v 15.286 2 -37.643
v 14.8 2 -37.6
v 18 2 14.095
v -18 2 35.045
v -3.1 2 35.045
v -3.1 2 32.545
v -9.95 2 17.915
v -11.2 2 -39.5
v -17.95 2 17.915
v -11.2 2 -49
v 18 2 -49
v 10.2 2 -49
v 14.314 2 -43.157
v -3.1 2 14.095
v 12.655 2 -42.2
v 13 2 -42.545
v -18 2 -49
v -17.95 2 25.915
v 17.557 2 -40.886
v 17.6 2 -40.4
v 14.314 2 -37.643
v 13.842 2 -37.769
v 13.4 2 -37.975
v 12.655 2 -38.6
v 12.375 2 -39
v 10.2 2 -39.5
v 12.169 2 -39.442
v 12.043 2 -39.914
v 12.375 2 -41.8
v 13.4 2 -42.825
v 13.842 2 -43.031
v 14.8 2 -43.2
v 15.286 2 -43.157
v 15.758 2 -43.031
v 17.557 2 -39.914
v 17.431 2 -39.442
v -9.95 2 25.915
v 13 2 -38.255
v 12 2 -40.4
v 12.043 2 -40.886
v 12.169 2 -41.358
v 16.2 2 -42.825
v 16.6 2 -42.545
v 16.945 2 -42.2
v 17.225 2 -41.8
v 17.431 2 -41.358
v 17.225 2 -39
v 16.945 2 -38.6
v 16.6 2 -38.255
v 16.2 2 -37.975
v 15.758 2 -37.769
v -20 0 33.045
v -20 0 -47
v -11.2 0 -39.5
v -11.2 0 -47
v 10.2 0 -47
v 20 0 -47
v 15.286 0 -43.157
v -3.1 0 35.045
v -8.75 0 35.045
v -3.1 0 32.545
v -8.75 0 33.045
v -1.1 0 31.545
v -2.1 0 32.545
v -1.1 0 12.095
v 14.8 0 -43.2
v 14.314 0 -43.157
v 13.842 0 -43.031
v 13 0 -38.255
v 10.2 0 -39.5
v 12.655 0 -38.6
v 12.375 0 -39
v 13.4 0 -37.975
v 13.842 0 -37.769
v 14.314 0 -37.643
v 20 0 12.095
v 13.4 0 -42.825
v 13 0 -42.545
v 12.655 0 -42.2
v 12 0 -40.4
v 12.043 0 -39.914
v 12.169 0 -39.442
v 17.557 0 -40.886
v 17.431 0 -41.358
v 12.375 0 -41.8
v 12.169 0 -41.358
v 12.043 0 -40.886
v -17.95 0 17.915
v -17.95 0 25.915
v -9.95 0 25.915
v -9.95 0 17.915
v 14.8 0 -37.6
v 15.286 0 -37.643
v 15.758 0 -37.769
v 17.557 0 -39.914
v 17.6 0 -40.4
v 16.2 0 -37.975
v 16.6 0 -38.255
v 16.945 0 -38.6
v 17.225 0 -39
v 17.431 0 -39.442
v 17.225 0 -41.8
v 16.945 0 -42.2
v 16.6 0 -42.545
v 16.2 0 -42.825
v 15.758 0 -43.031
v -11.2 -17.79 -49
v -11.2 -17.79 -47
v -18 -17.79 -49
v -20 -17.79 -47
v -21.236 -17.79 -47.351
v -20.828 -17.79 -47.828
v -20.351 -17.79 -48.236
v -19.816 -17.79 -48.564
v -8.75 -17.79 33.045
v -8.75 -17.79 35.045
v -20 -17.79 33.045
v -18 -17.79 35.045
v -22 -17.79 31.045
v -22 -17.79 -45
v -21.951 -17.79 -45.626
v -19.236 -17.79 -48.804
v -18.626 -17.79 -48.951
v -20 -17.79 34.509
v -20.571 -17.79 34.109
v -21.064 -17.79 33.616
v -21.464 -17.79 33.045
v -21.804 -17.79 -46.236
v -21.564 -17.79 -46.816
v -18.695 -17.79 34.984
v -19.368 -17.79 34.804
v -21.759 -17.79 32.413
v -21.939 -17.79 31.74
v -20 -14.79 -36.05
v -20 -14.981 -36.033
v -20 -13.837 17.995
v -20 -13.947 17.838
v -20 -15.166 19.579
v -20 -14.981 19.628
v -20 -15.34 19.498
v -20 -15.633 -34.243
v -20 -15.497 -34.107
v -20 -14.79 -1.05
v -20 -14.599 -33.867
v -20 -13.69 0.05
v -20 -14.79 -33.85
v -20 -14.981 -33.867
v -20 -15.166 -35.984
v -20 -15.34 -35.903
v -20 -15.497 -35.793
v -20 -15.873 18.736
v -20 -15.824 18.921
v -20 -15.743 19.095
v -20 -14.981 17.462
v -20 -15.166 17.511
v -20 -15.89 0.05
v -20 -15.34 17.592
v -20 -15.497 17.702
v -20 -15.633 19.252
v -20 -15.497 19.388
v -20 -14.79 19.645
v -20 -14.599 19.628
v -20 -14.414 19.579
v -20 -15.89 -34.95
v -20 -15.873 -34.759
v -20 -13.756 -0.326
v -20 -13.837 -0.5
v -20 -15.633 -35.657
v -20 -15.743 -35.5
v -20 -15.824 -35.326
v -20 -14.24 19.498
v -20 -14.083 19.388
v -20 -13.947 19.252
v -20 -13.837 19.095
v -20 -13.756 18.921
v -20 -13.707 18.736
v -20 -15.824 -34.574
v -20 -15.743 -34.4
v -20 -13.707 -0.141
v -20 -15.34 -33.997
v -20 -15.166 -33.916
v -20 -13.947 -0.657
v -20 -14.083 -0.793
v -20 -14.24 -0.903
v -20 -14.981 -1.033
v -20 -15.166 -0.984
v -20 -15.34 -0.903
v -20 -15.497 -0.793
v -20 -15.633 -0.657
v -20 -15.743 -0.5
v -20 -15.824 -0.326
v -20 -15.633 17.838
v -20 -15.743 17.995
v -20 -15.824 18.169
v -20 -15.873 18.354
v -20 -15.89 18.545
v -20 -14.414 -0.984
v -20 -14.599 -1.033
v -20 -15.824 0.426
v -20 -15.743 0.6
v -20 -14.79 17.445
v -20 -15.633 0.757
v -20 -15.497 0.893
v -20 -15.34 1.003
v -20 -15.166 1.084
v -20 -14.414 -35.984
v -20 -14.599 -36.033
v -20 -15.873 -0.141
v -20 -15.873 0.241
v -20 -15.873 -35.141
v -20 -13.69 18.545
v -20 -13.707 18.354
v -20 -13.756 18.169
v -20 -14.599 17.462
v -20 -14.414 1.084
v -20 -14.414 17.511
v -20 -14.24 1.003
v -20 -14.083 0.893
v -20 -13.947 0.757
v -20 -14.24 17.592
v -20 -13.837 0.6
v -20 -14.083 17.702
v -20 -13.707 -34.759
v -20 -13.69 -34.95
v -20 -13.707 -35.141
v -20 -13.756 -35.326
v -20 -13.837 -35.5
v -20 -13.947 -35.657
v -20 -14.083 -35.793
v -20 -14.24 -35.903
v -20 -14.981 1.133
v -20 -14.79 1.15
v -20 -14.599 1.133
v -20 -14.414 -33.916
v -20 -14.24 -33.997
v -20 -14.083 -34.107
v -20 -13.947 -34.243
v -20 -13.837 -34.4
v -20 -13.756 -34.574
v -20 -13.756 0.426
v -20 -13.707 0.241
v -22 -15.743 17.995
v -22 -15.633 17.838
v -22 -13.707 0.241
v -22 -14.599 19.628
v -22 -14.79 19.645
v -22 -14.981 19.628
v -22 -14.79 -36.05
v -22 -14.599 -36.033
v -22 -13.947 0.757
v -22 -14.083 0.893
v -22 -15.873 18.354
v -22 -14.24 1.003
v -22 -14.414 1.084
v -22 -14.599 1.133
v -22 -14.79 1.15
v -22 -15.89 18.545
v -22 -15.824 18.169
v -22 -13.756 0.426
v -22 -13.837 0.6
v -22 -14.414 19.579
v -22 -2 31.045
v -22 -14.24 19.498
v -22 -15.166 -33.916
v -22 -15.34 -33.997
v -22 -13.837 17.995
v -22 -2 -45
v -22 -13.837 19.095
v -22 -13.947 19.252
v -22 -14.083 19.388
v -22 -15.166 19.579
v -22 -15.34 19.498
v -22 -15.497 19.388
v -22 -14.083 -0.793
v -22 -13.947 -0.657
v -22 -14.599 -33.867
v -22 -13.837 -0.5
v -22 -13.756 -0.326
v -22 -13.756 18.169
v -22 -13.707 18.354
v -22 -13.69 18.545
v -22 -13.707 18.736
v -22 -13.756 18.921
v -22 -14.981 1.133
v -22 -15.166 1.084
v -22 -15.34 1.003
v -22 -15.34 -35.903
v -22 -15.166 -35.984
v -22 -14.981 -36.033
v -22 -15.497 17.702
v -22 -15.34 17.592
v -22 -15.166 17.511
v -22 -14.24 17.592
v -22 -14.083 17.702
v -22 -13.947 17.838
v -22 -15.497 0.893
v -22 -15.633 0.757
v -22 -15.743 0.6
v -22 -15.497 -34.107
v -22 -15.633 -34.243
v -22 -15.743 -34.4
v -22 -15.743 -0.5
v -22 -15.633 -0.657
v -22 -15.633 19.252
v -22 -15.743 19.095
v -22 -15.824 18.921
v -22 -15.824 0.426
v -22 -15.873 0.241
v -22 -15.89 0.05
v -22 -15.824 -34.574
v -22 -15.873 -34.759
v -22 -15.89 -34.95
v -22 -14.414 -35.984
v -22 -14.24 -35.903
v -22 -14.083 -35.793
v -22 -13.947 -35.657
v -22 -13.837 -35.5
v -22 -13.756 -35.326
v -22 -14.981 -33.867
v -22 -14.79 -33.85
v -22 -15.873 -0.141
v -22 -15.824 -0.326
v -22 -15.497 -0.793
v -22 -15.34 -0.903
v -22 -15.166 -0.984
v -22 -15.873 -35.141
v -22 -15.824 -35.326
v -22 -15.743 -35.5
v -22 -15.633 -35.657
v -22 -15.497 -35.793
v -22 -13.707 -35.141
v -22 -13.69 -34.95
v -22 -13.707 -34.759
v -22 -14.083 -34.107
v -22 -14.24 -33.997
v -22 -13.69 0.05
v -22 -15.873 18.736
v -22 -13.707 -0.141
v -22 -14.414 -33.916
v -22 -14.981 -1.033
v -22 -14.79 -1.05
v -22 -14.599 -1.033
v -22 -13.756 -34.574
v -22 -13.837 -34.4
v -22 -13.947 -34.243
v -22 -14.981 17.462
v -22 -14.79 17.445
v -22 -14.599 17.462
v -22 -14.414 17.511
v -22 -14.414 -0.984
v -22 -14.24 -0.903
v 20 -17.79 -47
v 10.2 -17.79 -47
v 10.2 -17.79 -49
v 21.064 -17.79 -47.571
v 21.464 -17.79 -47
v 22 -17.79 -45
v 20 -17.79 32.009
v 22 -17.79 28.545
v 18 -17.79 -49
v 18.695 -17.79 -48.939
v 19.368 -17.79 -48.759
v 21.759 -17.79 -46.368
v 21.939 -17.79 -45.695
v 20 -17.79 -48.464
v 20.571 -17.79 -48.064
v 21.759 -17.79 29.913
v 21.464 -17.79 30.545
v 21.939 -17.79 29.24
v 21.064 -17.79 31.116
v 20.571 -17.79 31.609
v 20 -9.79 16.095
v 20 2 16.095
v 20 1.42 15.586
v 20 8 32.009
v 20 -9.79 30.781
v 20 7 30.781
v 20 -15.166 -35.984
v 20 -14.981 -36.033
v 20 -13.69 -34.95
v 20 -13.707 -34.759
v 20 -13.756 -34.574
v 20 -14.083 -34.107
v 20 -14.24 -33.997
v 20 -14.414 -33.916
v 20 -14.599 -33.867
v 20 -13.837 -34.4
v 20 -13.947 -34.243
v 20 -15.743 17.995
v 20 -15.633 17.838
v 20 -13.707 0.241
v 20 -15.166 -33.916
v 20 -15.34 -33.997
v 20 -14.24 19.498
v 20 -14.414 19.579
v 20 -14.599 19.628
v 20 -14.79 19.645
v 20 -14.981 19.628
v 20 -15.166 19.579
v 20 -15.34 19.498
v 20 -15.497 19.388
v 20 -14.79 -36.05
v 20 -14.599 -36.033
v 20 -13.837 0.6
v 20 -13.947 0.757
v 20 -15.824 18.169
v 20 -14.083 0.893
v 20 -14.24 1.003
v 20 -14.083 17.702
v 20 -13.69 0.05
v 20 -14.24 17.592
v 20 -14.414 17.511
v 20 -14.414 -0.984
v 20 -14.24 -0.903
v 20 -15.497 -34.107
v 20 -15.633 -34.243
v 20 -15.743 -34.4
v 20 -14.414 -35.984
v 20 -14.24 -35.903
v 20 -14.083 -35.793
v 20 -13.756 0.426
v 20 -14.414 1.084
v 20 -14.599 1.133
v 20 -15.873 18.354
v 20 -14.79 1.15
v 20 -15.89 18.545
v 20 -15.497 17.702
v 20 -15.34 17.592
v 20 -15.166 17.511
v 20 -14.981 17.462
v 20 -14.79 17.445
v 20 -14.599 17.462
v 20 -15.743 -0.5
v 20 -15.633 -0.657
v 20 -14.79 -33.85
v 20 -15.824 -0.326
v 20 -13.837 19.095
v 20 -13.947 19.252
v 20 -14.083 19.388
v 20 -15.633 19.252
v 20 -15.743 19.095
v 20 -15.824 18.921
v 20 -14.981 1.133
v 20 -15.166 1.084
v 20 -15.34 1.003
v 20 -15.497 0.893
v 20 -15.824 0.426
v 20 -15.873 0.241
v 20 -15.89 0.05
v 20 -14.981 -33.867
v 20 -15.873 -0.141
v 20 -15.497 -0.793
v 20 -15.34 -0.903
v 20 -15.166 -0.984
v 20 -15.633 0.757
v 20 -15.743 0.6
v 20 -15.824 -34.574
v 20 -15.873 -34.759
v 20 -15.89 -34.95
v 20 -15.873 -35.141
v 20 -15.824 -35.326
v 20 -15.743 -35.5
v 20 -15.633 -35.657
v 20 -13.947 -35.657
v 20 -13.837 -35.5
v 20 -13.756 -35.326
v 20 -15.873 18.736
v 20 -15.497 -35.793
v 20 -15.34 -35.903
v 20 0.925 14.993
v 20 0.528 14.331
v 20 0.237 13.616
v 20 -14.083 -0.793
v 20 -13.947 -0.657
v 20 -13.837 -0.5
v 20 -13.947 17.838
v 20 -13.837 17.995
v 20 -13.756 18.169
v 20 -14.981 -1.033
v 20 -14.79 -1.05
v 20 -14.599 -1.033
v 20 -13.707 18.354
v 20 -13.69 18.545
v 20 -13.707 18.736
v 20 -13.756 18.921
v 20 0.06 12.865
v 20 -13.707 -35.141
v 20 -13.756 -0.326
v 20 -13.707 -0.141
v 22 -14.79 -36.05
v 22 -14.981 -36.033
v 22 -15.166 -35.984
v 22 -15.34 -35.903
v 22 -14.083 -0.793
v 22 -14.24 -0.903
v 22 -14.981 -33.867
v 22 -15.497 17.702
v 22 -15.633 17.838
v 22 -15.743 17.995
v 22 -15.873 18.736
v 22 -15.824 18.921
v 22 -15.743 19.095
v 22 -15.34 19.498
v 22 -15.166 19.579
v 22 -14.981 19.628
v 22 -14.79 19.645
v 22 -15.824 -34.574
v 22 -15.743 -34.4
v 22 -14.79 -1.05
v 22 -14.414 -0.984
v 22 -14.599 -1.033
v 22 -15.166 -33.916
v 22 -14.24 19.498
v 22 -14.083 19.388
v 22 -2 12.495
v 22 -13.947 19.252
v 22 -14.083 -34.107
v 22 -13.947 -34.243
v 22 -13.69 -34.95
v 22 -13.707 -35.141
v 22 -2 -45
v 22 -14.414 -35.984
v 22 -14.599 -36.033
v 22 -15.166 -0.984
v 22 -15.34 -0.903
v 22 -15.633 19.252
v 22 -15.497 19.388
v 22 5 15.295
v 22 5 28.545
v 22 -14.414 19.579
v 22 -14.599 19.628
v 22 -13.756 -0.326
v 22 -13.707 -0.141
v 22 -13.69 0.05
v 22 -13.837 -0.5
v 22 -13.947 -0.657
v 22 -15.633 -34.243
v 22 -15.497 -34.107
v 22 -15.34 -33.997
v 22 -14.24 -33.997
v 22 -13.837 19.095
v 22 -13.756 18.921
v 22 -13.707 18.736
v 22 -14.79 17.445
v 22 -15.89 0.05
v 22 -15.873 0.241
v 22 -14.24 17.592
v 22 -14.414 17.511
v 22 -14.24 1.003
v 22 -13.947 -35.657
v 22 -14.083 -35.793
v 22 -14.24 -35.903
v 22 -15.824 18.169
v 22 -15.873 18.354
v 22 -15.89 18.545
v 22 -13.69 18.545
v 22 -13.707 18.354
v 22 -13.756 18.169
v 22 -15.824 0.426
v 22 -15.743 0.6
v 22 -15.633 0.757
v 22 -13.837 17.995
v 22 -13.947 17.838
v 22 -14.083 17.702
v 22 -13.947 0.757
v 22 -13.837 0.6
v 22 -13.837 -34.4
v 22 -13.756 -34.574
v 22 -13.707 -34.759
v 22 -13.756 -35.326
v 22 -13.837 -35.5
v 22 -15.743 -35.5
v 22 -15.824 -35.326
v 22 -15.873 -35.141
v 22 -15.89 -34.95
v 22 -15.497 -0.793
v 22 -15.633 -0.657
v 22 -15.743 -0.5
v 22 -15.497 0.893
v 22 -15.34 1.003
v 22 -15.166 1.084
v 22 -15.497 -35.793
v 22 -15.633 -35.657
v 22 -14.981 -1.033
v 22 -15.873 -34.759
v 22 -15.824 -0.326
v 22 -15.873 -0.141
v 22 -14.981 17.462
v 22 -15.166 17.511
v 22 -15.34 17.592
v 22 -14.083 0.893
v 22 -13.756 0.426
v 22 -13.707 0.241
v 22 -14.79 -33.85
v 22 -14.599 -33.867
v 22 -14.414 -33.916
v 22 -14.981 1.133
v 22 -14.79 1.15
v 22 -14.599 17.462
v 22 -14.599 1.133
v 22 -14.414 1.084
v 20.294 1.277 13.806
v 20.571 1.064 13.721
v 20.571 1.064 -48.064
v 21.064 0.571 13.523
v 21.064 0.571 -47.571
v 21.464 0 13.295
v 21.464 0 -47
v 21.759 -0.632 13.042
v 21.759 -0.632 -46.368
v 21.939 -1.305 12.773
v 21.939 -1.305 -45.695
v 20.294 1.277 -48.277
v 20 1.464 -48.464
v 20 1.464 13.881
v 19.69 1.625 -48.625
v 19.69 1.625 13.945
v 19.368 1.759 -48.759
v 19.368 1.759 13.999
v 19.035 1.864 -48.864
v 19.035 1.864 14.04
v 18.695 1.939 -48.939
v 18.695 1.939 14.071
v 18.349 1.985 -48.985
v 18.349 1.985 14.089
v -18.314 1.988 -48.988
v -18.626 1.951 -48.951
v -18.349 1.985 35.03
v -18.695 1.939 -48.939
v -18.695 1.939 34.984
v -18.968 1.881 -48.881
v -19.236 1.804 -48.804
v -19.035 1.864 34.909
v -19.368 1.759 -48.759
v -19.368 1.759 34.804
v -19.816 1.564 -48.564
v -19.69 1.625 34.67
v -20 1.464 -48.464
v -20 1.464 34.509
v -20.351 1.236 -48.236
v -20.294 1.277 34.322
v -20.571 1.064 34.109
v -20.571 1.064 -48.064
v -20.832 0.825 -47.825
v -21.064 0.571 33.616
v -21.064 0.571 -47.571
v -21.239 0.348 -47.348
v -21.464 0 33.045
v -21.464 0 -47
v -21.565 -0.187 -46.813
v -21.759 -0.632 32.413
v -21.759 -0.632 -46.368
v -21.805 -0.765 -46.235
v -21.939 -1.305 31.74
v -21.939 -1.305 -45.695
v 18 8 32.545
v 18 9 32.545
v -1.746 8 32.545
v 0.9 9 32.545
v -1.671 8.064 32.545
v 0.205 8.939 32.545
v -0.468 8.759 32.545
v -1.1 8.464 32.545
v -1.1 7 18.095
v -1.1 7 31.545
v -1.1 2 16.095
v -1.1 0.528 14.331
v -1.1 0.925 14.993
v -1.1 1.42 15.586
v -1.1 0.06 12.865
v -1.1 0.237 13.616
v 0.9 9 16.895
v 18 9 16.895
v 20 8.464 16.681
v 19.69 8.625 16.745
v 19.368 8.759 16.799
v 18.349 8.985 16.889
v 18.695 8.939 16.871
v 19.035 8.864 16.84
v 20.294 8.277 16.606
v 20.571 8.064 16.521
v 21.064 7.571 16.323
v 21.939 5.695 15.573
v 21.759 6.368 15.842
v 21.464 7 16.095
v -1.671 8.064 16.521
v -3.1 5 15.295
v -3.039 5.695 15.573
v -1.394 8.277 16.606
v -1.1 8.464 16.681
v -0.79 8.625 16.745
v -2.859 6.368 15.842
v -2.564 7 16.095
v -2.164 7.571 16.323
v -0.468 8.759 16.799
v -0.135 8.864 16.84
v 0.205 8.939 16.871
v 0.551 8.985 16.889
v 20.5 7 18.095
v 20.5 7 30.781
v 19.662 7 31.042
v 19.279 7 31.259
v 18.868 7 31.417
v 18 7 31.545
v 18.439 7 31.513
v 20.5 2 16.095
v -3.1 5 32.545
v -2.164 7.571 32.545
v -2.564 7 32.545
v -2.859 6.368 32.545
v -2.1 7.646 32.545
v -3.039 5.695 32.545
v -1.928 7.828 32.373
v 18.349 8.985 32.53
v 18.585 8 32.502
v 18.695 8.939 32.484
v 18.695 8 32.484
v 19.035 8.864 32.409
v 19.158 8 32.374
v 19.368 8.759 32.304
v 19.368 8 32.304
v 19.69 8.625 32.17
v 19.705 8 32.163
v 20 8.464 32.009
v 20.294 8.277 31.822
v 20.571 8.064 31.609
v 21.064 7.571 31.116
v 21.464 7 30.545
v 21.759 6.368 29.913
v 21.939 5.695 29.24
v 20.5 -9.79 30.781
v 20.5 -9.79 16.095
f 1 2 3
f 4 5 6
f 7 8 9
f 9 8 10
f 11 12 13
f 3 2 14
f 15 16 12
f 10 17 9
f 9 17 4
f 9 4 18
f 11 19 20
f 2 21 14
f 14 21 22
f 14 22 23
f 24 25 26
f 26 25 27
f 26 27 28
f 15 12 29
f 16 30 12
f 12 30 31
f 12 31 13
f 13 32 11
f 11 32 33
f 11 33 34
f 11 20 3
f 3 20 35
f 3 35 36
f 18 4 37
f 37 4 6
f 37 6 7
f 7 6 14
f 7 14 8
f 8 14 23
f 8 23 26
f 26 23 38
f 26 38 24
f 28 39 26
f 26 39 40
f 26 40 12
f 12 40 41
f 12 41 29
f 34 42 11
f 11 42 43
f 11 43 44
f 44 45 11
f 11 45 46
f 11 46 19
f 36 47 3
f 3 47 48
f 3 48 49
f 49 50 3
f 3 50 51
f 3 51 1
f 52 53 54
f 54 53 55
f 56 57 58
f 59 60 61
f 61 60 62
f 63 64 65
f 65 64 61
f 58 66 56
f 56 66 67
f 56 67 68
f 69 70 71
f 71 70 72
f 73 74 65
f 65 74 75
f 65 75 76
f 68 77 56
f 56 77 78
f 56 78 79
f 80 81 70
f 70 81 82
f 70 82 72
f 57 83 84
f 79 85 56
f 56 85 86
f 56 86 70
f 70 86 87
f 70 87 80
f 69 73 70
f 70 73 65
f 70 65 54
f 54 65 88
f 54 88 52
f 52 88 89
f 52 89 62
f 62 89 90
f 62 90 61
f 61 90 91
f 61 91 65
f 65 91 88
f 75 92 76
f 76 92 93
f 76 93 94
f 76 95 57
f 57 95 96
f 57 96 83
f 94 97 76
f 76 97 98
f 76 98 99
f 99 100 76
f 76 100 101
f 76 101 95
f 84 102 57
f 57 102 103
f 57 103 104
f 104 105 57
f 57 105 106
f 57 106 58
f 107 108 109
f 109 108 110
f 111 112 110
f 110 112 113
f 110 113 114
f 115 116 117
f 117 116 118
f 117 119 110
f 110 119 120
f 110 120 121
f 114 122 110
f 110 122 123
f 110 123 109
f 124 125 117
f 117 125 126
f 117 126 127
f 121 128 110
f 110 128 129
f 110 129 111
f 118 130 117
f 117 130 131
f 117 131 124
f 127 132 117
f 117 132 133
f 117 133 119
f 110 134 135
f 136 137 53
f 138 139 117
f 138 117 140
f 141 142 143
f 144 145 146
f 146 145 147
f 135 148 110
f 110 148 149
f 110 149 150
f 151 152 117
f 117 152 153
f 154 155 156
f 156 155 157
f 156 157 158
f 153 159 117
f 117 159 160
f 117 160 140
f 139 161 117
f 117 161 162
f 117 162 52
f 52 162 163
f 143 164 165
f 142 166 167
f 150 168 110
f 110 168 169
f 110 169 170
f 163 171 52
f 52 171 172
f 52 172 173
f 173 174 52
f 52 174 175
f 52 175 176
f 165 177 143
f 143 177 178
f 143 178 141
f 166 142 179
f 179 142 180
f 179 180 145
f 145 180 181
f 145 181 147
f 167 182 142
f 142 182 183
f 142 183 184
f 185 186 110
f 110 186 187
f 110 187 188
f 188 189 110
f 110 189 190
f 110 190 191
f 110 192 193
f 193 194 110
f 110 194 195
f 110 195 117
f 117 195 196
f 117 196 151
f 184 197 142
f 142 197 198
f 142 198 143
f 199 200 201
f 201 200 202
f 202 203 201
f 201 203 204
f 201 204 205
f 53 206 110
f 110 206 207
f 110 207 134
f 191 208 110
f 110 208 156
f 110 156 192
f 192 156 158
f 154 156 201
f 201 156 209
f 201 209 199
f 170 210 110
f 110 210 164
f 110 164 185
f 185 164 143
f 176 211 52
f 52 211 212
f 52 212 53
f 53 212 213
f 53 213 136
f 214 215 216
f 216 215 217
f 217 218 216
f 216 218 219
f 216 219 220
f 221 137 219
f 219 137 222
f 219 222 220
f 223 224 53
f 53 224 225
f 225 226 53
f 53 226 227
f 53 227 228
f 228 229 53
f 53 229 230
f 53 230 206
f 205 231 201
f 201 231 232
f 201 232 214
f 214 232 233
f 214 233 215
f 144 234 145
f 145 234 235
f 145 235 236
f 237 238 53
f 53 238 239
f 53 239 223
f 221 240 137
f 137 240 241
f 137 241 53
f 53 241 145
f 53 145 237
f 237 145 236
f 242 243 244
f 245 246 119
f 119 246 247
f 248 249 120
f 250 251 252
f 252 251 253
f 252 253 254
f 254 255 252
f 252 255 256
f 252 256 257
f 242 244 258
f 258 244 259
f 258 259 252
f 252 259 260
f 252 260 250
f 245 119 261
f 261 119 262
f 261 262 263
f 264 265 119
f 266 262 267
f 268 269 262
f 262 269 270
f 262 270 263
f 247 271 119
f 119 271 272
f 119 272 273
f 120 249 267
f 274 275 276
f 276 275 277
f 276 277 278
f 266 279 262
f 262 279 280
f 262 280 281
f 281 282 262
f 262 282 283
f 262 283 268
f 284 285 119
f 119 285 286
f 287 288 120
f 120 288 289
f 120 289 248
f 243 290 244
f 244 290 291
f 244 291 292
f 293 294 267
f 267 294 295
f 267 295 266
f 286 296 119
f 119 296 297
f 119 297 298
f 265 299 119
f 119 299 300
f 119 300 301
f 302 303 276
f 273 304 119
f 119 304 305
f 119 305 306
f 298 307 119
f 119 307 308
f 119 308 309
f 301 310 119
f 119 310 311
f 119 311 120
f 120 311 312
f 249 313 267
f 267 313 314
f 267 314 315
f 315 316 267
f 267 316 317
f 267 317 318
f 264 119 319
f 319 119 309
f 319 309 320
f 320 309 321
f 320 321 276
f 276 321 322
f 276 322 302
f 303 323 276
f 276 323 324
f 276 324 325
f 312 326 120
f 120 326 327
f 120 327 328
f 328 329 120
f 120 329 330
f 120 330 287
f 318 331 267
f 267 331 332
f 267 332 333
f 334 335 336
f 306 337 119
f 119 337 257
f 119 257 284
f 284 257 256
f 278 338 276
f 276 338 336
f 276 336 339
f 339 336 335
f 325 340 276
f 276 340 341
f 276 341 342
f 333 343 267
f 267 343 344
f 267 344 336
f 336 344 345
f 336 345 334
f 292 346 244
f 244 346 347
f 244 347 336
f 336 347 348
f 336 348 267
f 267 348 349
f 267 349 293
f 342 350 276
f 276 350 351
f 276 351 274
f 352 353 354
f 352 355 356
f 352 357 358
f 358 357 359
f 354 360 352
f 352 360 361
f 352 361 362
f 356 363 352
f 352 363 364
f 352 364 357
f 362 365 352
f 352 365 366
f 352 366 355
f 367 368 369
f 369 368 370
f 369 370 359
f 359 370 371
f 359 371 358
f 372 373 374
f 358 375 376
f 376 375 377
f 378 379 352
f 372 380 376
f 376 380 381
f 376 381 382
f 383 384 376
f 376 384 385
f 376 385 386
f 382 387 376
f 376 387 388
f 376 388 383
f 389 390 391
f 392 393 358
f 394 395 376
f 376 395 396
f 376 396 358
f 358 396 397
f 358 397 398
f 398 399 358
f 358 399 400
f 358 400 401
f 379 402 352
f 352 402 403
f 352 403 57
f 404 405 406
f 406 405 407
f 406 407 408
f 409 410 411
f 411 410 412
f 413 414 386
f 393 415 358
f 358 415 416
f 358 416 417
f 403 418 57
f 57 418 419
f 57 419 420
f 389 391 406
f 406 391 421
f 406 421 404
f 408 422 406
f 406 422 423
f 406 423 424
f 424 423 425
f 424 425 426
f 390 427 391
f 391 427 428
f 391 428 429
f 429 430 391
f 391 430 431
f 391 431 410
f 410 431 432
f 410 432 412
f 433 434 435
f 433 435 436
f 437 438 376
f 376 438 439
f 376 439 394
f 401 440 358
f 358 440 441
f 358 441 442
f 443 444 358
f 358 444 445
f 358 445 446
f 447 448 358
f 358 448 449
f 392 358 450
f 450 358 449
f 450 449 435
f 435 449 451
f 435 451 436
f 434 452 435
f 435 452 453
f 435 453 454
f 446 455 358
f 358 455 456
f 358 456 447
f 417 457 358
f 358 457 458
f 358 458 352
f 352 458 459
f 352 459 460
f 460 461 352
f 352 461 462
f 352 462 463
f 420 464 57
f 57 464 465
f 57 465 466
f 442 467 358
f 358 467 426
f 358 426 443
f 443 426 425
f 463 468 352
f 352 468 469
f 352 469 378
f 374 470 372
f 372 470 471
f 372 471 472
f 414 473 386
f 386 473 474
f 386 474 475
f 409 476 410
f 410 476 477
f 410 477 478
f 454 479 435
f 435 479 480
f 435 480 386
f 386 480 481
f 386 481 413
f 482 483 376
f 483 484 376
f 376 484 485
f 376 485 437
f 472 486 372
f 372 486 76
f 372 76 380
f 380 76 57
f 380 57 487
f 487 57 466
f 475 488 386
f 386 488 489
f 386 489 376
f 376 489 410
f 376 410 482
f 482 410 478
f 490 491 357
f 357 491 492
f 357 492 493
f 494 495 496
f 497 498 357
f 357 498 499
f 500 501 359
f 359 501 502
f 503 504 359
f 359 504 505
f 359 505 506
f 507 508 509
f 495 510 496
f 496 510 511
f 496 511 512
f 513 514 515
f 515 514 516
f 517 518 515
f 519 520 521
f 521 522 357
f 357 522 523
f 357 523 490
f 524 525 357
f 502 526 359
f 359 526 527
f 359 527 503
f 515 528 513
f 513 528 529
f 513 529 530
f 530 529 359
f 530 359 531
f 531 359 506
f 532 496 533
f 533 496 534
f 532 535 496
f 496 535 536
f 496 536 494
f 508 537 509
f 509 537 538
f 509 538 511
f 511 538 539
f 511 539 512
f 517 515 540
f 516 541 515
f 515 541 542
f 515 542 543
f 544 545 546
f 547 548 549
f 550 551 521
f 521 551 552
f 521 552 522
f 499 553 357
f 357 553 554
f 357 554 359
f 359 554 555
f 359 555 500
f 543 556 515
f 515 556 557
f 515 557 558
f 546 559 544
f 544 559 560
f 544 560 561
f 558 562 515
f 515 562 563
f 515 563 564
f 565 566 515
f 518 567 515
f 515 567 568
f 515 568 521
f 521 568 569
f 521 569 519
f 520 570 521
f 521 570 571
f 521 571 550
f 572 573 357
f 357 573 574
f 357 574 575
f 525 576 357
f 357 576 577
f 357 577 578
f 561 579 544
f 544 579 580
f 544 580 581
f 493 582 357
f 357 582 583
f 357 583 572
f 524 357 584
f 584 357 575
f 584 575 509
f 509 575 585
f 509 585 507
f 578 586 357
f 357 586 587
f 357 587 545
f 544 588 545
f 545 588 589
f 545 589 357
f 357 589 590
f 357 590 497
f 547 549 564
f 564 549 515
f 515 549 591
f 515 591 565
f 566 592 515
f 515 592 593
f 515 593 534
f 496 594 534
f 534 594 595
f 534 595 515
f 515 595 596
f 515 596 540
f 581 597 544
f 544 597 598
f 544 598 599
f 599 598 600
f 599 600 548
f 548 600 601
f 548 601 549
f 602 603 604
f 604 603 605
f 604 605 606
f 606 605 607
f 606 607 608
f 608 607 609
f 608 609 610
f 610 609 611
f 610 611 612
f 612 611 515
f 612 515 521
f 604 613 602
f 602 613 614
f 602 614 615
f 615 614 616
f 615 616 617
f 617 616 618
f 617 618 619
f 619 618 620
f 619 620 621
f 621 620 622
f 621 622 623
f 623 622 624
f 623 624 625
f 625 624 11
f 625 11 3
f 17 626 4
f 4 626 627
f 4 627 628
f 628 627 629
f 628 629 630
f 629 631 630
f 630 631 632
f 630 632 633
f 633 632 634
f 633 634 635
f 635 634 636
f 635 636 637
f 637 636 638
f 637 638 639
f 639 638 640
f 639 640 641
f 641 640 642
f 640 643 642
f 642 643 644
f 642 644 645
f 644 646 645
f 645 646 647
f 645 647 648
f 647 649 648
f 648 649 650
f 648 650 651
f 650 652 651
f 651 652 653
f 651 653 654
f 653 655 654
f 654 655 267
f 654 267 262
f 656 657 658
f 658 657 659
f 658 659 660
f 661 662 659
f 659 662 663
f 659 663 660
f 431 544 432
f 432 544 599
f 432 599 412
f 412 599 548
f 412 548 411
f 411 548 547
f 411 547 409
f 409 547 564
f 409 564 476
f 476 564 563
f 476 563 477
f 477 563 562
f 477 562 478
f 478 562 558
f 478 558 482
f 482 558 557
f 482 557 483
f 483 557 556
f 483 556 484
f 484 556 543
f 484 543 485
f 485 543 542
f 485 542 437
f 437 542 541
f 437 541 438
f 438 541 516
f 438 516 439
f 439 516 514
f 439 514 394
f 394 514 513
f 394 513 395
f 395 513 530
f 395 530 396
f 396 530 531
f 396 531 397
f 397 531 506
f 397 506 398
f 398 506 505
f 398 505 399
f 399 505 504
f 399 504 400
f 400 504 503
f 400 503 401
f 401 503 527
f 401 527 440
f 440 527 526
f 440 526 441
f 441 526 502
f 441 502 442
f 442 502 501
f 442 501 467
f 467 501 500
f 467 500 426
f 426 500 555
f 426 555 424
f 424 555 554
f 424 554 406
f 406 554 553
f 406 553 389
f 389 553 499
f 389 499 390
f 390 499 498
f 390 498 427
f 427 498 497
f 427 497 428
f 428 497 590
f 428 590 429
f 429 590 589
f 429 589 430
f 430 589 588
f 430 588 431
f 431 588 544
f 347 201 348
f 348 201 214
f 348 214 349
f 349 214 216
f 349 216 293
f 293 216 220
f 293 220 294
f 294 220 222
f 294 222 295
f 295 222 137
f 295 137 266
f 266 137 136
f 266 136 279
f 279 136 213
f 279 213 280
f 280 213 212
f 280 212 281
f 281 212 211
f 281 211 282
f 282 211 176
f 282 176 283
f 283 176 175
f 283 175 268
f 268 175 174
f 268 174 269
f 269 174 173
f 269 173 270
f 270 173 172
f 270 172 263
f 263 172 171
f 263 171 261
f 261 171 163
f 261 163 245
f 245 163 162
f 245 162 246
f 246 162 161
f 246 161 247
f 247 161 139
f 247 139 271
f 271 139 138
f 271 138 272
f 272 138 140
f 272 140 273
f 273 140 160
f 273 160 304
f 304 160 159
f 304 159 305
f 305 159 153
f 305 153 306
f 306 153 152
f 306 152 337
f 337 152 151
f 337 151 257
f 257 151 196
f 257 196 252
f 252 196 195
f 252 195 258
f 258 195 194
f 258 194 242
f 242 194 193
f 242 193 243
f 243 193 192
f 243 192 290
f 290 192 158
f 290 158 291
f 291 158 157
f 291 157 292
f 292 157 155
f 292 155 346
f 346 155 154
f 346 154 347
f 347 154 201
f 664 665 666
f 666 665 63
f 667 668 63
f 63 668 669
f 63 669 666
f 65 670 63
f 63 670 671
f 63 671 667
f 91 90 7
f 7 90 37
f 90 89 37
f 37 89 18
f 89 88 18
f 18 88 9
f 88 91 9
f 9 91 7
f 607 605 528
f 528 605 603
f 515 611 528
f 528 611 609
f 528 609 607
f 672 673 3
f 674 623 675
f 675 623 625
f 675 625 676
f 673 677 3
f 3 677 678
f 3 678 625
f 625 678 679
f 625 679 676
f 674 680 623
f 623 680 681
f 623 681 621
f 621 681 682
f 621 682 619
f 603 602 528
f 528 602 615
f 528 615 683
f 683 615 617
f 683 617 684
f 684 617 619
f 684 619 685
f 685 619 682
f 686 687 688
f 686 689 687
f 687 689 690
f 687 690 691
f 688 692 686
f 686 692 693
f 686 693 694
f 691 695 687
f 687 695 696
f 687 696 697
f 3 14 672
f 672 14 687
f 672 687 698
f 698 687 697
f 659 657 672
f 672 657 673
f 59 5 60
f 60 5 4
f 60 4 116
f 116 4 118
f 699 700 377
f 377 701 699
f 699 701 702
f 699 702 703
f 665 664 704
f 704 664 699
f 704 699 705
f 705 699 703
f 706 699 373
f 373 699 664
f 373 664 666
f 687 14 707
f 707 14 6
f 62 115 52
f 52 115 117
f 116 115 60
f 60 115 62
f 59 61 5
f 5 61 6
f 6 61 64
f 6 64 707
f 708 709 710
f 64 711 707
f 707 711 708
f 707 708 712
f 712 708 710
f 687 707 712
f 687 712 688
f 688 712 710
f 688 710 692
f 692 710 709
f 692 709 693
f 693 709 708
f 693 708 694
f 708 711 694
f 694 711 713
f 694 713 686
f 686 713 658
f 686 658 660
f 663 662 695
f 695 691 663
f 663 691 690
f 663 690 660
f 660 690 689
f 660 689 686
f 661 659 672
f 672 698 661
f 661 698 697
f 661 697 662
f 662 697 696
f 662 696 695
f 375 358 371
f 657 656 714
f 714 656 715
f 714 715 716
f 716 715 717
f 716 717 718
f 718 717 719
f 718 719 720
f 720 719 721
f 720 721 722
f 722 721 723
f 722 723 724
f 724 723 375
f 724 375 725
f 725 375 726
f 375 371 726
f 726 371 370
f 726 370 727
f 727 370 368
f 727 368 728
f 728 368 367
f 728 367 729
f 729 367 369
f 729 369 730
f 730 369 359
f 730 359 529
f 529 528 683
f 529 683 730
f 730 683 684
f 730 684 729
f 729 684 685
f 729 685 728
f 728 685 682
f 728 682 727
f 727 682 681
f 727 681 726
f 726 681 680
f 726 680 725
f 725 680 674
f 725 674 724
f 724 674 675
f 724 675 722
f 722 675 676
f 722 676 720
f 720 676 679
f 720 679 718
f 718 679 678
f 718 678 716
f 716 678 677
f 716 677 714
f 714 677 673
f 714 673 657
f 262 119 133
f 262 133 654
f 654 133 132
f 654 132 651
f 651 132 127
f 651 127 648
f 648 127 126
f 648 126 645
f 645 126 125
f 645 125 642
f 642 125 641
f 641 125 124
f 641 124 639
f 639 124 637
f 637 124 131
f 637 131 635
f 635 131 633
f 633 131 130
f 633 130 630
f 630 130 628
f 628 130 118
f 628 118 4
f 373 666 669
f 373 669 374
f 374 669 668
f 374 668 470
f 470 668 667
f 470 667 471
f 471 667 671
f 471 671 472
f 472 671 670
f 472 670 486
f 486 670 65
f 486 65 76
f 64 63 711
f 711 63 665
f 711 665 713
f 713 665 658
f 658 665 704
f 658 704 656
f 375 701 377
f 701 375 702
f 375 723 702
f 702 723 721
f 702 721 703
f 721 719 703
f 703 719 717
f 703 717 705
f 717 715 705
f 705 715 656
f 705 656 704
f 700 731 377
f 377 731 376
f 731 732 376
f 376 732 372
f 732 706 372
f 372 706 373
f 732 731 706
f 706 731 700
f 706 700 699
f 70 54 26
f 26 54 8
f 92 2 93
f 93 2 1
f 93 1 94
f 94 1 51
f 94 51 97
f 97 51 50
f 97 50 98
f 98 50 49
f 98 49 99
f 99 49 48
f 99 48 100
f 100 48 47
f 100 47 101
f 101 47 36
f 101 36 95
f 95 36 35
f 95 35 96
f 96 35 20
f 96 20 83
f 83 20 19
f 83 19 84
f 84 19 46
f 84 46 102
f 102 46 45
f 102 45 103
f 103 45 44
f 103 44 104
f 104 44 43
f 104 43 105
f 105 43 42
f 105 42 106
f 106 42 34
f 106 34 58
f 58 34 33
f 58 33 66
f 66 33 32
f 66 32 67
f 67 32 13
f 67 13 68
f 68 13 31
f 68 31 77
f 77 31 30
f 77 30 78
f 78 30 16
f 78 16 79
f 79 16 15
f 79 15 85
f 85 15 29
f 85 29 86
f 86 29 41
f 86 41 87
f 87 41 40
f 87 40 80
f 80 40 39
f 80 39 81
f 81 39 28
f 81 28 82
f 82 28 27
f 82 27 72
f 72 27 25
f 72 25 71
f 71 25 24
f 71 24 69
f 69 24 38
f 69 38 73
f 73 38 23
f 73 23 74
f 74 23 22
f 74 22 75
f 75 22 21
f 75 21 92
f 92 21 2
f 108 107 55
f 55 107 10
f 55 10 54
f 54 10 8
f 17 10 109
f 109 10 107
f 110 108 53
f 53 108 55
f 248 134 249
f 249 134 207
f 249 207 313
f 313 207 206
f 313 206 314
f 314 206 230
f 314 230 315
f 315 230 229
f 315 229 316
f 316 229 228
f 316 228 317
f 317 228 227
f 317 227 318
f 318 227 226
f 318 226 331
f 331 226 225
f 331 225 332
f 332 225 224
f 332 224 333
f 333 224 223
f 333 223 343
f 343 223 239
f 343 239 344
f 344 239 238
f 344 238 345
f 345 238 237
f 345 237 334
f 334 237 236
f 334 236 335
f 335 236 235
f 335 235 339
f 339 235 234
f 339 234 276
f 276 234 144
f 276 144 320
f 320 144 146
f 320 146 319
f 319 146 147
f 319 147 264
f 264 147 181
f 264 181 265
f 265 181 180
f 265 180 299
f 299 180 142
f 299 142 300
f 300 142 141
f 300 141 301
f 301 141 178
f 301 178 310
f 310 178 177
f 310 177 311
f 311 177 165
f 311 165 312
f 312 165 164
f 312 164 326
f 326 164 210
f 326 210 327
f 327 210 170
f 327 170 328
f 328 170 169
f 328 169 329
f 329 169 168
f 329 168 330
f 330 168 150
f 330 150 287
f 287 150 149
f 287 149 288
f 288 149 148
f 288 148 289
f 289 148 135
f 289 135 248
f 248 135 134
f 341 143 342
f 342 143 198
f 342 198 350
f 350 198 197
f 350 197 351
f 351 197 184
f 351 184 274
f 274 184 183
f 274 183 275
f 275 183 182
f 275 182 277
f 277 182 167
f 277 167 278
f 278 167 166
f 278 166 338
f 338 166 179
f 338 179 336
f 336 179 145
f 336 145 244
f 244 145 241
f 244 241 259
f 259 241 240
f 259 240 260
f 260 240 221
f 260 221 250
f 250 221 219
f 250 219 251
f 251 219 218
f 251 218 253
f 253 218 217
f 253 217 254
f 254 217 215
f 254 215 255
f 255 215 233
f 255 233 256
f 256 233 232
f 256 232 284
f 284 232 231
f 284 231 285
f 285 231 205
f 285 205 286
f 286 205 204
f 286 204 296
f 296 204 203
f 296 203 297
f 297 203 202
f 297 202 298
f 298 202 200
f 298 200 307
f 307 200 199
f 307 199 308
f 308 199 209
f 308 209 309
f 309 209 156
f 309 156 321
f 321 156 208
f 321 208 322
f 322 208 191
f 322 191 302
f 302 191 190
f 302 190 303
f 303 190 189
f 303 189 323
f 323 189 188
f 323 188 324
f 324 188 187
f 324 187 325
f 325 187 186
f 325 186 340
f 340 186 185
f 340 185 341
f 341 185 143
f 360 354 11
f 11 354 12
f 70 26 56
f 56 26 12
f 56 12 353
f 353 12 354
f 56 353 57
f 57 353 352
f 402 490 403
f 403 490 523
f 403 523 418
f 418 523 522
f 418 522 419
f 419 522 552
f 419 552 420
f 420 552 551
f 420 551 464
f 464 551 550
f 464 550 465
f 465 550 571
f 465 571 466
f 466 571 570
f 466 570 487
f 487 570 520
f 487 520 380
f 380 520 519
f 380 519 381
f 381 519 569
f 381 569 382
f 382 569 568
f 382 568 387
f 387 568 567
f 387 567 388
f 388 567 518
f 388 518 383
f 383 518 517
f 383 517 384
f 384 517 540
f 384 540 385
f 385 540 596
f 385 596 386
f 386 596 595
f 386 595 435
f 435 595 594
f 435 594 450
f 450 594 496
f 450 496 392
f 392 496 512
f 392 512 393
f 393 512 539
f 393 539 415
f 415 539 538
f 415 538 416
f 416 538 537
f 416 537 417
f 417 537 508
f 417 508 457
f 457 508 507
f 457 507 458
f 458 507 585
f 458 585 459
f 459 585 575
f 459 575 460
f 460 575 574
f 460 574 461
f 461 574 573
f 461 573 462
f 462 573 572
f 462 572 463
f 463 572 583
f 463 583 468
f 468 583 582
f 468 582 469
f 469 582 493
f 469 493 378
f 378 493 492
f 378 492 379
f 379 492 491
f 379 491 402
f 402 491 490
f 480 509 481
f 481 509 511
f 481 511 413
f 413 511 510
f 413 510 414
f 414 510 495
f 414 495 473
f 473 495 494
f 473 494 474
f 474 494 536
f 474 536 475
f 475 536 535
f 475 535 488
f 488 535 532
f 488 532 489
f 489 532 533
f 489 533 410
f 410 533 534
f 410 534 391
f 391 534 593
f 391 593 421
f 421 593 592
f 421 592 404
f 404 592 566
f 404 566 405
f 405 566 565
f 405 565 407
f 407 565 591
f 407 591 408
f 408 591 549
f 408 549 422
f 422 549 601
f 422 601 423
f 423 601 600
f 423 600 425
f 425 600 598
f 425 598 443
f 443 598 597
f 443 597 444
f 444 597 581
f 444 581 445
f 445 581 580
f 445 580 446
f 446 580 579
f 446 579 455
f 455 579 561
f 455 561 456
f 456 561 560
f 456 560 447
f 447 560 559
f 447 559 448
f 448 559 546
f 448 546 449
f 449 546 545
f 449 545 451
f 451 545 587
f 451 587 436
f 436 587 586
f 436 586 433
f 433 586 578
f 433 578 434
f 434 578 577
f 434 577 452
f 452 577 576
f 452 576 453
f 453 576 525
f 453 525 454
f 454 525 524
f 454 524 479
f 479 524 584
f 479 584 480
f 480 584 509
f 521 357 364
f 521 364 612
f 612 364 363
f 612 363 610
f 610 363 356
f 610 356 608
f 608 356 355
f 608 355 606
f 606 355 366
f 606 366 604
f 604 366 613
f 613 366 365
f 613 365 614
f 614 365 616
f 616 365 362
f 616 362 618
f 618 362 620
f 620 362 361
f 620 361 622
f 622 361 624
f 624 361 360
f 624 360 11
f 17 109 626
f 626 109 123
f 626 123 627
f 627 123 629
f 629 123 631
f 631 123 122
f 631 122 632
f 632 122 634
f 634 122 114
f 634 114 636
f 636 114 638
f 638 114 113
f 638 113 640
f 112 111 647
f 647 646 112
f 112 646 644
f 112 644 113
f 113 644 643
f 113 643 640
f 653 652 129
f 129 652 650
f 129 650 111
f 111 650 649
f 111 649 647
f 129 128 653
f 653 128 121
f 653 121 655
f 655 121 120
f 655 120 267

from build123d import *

# Parameters (mm, degrees)
SKETCH1_W               = 40
SKETCH1_H               = 94
BOSS_EXTRUDE1_DEPTH     = 2
SKETCH2_R               = 2.8
SKETCH2_W               = 21.4
SKETCH2_H               = 7.5
SKETCH2_W_2             = 8
SKETCH2_H_2             = 8
SKETCH2_W_3             = 21.1
SKETCH2_H_3             = 14.4
CUT_EXTRUDE1_DEPTH      = 52.117511677
BOSS_EXTRUDE2_DEPTH     = 21.1
BOSS_EXTRUDE3_DEPTH     = 2
SKETCH5_W               = 18.9
SKETCH5_H               = 4.55
BOSS_EXTRUDE5_DEPTH     = 2
SKETCH6_W               = 11.25
SKETCH6_H               = 19.79
BOSS_EXTRUDE6_DEPTH     = 2
SKETCH7_W               = 98.55
SKETCH7_H               = 19.79
BOSS_EXTRUDE7_DEPTH     = 2
SKETCH8_W               = 10.8
SKETCH8_H               = 19.79
SKETCH8_W_2             = 9.8
BOSS_EXTRUDE8_DEPTH     = 2
BOSS_EXTRUDE9_DEPTH     = 2
SKETCH12_R              = 1.1
CUT_EXTRUDE2_DEPTH      = 71.070582986
LPATTERN1_COUNT         = 3
LPATTERN1_PITCH         = 35
SKETCH13_W              = 25.1
SKETCH13_H              = 26.79
CUT_EXTRUDE3_DEPTH      = 2.5
FILLET1_R               = 4
FILLET2_R               = 5
CHAMFER1_SIZE           = 1
CUT_EXTRUDE4_DEPTH      = 0.5
CUT_EXTRUDE5_DEPTH      = 60.439436404
CUT_EXTRUDE5_DEPTH_BACK = 60.439436404
SKETCH15_W              = 44
SKETCH15_H              = 16.505


with BuildPart() as part:
    # Sketch1 → Boss-Extrude1 (new body)
    with BuildSketch(Plane(origin=(0, 0, 0), x_dir=(1, 0, 0), z_dir=(0, 1, 0))):
        Rectangle(SKETCH1_W, SKETCH1_H)
    extrude(amount=BOSS_EXTRUDE1_DEPTH)

    # Sketch2 → Cut-Extrude1 (cut, through all)
    with BuildSketch(Plane(origin=(0, 2, 0), x_dir=(1, 0, 0), z_dir=(0, 1, 0))):
        with Locations(Location((14.8, 40.4, 0), (0, 0, 270))):
            Circle(SKETCH2_R)
        with Locations((-0.5, 43.25)):
            Rectangle(SKETCH2_W, SKETCH2_H)
        with Locations((0.05, -20.02)):
            Rectangle(SKETCH2_W_2, SKETCH2_H_2)
        with Locations((14.05, -20.02)):
            Rectangle(SKETCH2_W_2, SKETCH2_H_2)
        with Locations((-13.95, -20.02)):
            Rectangle(SKETCH2_W_2, SKETCH2_H_2)
        with Locations((-13.95, -38.42)):
            Rectangle(SKETCH2_W_2, SKETCH2_H_2)
        with Locations((9.45, -39.8)):
            Rectangle(SKETCH2_W_3, SKETCH2_H_3)
    extrude(amount=-CUT_EXTRUDE1_DEPTH, mode=Mode.SUBTRACT)

    # Sketch3 → Boss-Extrude2 (add)
    with BuildSketch(Plane(origin=(20, 0, 0), x_dir=(0, 0, -1), z_dir=(1, 0, 0))):
        Polygon((-32.6, 2), (-34.6, 7), (-49.35, 7), (-49.35, 7.5), (-51.55, 7.5), (-51.55, 9), (-33.4, 9), (-30.6, 2), align=None)
    extrude(amount=-BOSS_EXTRUDE2_DEPTH)

    # Sketch4 → Boss-Extrude3 (add)
    with BuildSketch(Plane.ZY.offset(1.1)):
        Polygon((51.55, 9), (51.55, 2), (30.6, 2), (33.4, 9), align=None)
    extrude(amount=BOSS_EXTRUDE3_DEPTH)

    # Sketch5 → Boss-Extrude5 (add)
    with BuildSketch(Plane(origin=(0, 2, 0), x_dir=(1, 0, 0), z_dir=(0, 1, 0))):
        with Locations((-10.55, -49.275)):
            Rectangle(SKETCH5_W, SKETCH5_H)
    extrude(amount=-BOSS_EXTRUDE5_DEPTH)

    # Sketch6 → Boss-Extrude6 (add)
    with BuildSketch(Plane.XY.offset(51.55)):
        with Locations((-14.375, -7.895)):
            Rectangle(SKETCH6_W, SKETCH6_H)
    extrude(amount=-BOSS_EXTRUDE6_DEPTH)

    # Sketch7 → Boss-Extrude7 (add)
    with BuildSketch(Plane.ZY.offset(20)):
        with Locations((2.275, -7.895)):
            Rectangle(SKETCH7_W, SKETCH7_H)
    extrude(amount=BOSS_EXTRUDE7_DEPTH)

    # Sketch8 → Boss-Extrude8 (add)
    with BuildSketch(Plane(origin=(0, 0, -47), x_dir=(-1, 0, 0), z_dir=(0, 0, -1))):
        with Locations((16.6, -7.895)):
            Rectangle(SKETCH8_W, SKETCH8_H)
        with Locations((-15.1, -7.895)):
            Rectangle(SKETCH8_W_2, SKETCH8_H)
    extrude(amount=BOSS_EXTRUDE8_DEPTH)

    # Sketch9 → Boss-Extrude9 (add)
    with BuildSketch(Plane(origin=(20, 0, 0), x_dir=(0, 0, -1), z_dir=(1, 0, 0))):
        Polygon((-51.55, 9), (-51.55, -17.79), (49, -17.79), (49, 2), (-30.6, 2), (-33.4, 9), align=None)
    extrude(amount=BOSS_EXTRUDE9_DEPTH)

    # Sketch12 → Cut-Extrude2 (cut, symmetric)
    with BuildSketch(Plane(origin=(22, 0, 0), x_dir=(0, 0, -1), z_dir=(1, 0, 0))):
        with Locations((34.95, -14.79)):
            Circle(SKETCH12_R)
    cut_extrude2 = extrude(amount=CUT_EXTRUDE2_DEPTH, both=True, mode=Mode.SUBTRACT)

    # LPattern1: Cut-Extrude2 ×3
    with Locations(*[(0, 0, i * LPATTERN1_PITCH) for i in range(1, LPATTERN1_COUNT)]):
        add(cut_extrude2, mode=Mode.SUBTRACT)

    # Sketch13 → Cut-Extrude3 (cut)
    with BuildSketch(Plane.XY.offset(51.55)):
        with Locations((9.45, -4.395)):
            Rectangle(SKETCH13_W, SKETCH13_H)
    extrude(amount=-CUT_EXTRUDE3_DEPTH, mode=Mode.SUBTRACT)

    # Fillet1
    # the kernel refuses this fillet: 4 mm, written as the material it takes off along each edge
    with BuildSketch(Plane(origin=(22, -27.79, -49), x_dir=(-1, 0, 0), z_dir=(0, 1, 0))) as fillet1_piece_1:
        with BuildLine():
            CenterArc((FILLET1_R, FILLET1_R), FILLET1_R, 180, 90)
            Line((0, FILLET1_R), (0, 0))
            Line((0, 0), (FILLET1_R, 0))
        make_face()
    extrude(amount=39.79, mode=Mode.SUBTRACT)
    with BuildSketch(Plane(origin=(22, 9, 23.4), x_dir=(0, -1, 0), z_dir=(0, 0, 1))) as fillet1_piece_2:
        with BuildLine():
            CenterArc((FILLET1_R, -FILLET1_R), FILLET1_R, 90, 90)
            Line((0, -FILLET1_R), (0, 0))
            Line((0, 0), (FILLET1_R, 0))
        make_face()
    extrude(amount=35.65, mode=Mode.SUBTRACT)
    with BuildSketch(Plane(origin=(22, 2, -59), x_dir=(-1, 0, 0), z_dir=(0, 0, 1))) as fillet1_piece_3_section:
        with BuildLine():
            CenterArc((FILLET1_R, FILLET1_R), FILLET1_R, 180, 90)
            Line((0, FILLET1_R), (0, 0))
            Line((0, 0), (FILLET1_R, 0))
        make_face()
    fillet1_piece_3 = extrude(amount=99.6, mode=Mode.PRIVATE)
    fillet1_piece_3 = split(fillet1_piece_3, bisect_by=Plane(origin=(22, -28.896551724, 18.24137931), z_dir=(0, 0.3713906763541048, -0.928476690885259)), keep=Keep.TOP, mode=Mode.PRIVATE)
    add(fillet1_piece_3, mode=Mode.SUBTRACT)
    with BuildSketch(Plane(origin=(-22, -27.79, -49), x_dir=(1, 0, 0), z_dir=(0, 1, 0)), Plane(origin=(-22, 12, 51.55), x_dir=(1, 0, 0), z_dir=(0, -1, 0))) as fillet1_piece_4:
        with BuildLine():
            CenterArc((FILLET1_R, -FILLET1_R), FILLET1_R, 90, 90)
            Line((0, -FILLET1_R), (0, 0))
            Line((0, 0), (FILLET1_R, 0))
        make_face()
    extrude(amount=39.79, mode=Mode.SUBTRACT)
    with BuildSketch(Plane(origin=(-22, 2, -59), x_dir=(1, 0, 0), z_dir=(0, 0, 1))) as fillet1_piece_5:
        with BuildLine():
            CenterArc((FILLET1_R, -FILLET1_R), FILLET1_R, 90, 90)
            Line((0, -FILLET1_R), (0, 0))
            Line((0, 0), (FILLET1_R, 0))
        make_face()
    extrude(amount=120.55, mode=Mode.SUBTRACT)
    with BuildSketch(Plane(origin=(-3.1, 9, 23.4), x_dir=(0, -1, 0), z_dir=(0, 0, 1))) as fillet1_piece_6:
        with BuildLine():
            CenterArc((FILLET1_R, FILLET1_R), FILLET1_R, 180, 90)
            Line((0, FILLET1_R), (0, 0))
            Line((0, 0), (FILLET1_R, 0))
        make_face()
    extrude(amount=35.65, mode=Mode.SUBTRACT)
    with BuildSketch(Plane(origin=(22, -27.79, 49.05), x_dir=(-1, 0, 0), z_dir=(0, 1, 0))) as fillet1_piece_7:
        with BuildLine():
            CenterArc((FILLET1_R, -FILLET1_R), FILLET1_R, 90, 90)
            Line((0, -FILLET1_R), (0, 0))
            Line((0, 0), (FILLET1_R, 0))
        make_face()
    extrude(amount=46.79, mode=Mode.SUBTRACT)

    # Fillet2
    # the kernel refuses this fillet: 5 mm, written as the material it takes off along each edge
    with BuildSketch(Plane(origin=(20, 0, 32.6), x_dir=(0, 0, -1), z_dir=(-1, 0, 0))) as fillet2_piece_1:
        with BuildLine():
            CenterArc((4, -5), FILLET2_R, 90, 53.130102354)
            Line((0, -2), (0, 0))
            Line((0, 0), (4, 0))
        make_face()
    extrude(amount=21.1, mode=Mode.SUBTRACT)

    # Chamfer1
    # the kernel refuses this chamfer: 1 mm, written as the material it takes off along each edge
    with BuildSketch(Plane(origin=(-1.1, 7, 49.05), x_dir=(-1, 0, 0), z_dir=(0, -1, 0))) as chamfer1_piece_1:
        Polygon((CHAMFER1_SIZE, 0), (0, CHAMFER1_SIZE), (0, 0), align=None)
    extrude(amount=9.571682988, mode=Mode.SUBTRACT)
    with BuildSketch(Plane(origin=(-1.1, 7, 49.05), x_dir=(0, 1, 0), z_dir=(1, 0, 0))) as chamfer1_piece_2:
        Polygon((CHAMFER1_SIZE, 0), (0, -CHAMFER1_SIZE), (0, 0), align=None)
    extrude(amount=19.1, mode=Mode.SUBTRACT)
    with BuildSketch(Plane(origin=(18, 7, 45.05), x_dir=(0.919398394096703, 0, 0.3933275898438904), z_dir=(0.3933275898438904, 0, -0.919398394096703))) as chamfer1_piece_3_section:
        Polygon((4, -CHAMFER1_SIZE), (4 - CHAMFER1_SIZE, 0), (4, 0), align=None)
    chamfer1_piece_3 = revolve(axis=Axis((18, 7, 45.05), (0, -1, 0)), revolution_arc=66.838289129, mode=Mode.PRIVATE)
    chamfer1_piece_3 = split(chamfer1_piece_3, bisect_by=Plane(origin=(20, 7, 45.05), z_dir=(-1, 0, 0)), keep=Keep.TOP, mode=Mode.PRIVATE)
    add(chamfer1_piece_3, mode=Mode.SUBTRACT)
    with BuildSketch(Plane(origin=(-3.671682988, 7, 49.05), x_dir=(0, 1, 0), z_dir=(1, 0, 0))) as chamfer1_piece_4a_section:
        Polygon((CHAMFER1_SIZE, 0), (0, -CHAMFER1_SIZE), (0, 0), align=None)
    chamfer1_piece_4a = extrude(amount=21.671682988, mode=Mode.PRIVATE)
    chamfer1_piece_4a = split(chamfer1_piece_4a, bisect_by=Plane(origin=(-1.1, 7, 49.05), z_dir=(-1, 0, 0)), keep=Keep.TOP, mode=Mode.PRIVATE)
    with BuildSketch(Plane(origin=(-1.1, 9.571682988, 49.05), x_dir=(-1, 0, 0), z_dir=(0, -1, 0))) as chamfer1_piece_4b_section:
        Polygon((CHAMFER1_SIZE, 0), (0, CHAMFER1_SIZE), (0, 0), align=None)
    chamfer1_piece_4b = extrude(amount=12.143365976, mode=Mode.PRIVATE)
    chamfer1_piece_4b = split(chamfer1_piece_4b, bisect_by=Plane(origin=(-1.1, 7, 49.05), z_dir=(0, 1, 0)), keep=Keep.TOP, mode=Mode.PRIVATE)
    chamfer1_piece_4 = chamfer1_piece_4a & chamfer1_piece_4b
    add(chamfer1_piece_4, mode=Mode.SUBTRACT)

    # Sketch14 → Cut-Extrude4 (cut)
    with BuildSketch(Plane.ZY.offset(-20)):
        Polygon((47.286067977, 7), (34.6, 7), (32.6, 2), (32.6, -9.79), (47.286067977, -9.79), align=None)
    extrude(amount=-CUT_EXTRUDE4_DEPTH, mode=Mode.SUBTRACT)

    # Sketch15 → Cut-Extrude5 (cut, two sides: drawn at the far end of the back side and taken through both)
    with BuildSketch(Plane(origin=(0, 2, 0), x_dir=(1, 0, 0), z_dir=(0, 1, 0)).offset(-CUT_EXTRUDE5_DEPTH_BACK)):
        with Locations((0, -20.02)):
            Rectangle(SKETCH15_W, SKETCH15_H)
    extrude(amount=CUT_EXTRUDE5_DEPTH + CUT_EXTRUDE5_DEPTH_BACK, mode=Mode.SUBTRACT)


with BuildPart() as cut_extrude5_piece_1:
    # of the separate pieces the step leaves, piece 1, a body of its own (cut_extrude5_pieces)
    add(part.part.solids().sort_by_distance((-11.2, 2, -39.5))[0])


with BuildPart() as cut_extrude5_piece_2:
    # of the separate pieces the step leaves, piece 2, a body of its own (cut_extrude5_pieces)
    add(part.part.solids().sort_by_distance((-20, 0, 49.55))[0])


with BuildPart() as cut_extrude5_piece_2_1:
    # Body-Move/Copy1: read off the stored shape, not the designer's step
    # Body-Move/Copy1: moved
    add(cut_extrude5_piece_2.part.moved(Location((0, 0, -16.505))))

    # Combine1: union Cut-Extrude5 piece 1
    add(cut_extrude5_piece_1.part)


solid = cut_extrude5_piece_2_1.part
